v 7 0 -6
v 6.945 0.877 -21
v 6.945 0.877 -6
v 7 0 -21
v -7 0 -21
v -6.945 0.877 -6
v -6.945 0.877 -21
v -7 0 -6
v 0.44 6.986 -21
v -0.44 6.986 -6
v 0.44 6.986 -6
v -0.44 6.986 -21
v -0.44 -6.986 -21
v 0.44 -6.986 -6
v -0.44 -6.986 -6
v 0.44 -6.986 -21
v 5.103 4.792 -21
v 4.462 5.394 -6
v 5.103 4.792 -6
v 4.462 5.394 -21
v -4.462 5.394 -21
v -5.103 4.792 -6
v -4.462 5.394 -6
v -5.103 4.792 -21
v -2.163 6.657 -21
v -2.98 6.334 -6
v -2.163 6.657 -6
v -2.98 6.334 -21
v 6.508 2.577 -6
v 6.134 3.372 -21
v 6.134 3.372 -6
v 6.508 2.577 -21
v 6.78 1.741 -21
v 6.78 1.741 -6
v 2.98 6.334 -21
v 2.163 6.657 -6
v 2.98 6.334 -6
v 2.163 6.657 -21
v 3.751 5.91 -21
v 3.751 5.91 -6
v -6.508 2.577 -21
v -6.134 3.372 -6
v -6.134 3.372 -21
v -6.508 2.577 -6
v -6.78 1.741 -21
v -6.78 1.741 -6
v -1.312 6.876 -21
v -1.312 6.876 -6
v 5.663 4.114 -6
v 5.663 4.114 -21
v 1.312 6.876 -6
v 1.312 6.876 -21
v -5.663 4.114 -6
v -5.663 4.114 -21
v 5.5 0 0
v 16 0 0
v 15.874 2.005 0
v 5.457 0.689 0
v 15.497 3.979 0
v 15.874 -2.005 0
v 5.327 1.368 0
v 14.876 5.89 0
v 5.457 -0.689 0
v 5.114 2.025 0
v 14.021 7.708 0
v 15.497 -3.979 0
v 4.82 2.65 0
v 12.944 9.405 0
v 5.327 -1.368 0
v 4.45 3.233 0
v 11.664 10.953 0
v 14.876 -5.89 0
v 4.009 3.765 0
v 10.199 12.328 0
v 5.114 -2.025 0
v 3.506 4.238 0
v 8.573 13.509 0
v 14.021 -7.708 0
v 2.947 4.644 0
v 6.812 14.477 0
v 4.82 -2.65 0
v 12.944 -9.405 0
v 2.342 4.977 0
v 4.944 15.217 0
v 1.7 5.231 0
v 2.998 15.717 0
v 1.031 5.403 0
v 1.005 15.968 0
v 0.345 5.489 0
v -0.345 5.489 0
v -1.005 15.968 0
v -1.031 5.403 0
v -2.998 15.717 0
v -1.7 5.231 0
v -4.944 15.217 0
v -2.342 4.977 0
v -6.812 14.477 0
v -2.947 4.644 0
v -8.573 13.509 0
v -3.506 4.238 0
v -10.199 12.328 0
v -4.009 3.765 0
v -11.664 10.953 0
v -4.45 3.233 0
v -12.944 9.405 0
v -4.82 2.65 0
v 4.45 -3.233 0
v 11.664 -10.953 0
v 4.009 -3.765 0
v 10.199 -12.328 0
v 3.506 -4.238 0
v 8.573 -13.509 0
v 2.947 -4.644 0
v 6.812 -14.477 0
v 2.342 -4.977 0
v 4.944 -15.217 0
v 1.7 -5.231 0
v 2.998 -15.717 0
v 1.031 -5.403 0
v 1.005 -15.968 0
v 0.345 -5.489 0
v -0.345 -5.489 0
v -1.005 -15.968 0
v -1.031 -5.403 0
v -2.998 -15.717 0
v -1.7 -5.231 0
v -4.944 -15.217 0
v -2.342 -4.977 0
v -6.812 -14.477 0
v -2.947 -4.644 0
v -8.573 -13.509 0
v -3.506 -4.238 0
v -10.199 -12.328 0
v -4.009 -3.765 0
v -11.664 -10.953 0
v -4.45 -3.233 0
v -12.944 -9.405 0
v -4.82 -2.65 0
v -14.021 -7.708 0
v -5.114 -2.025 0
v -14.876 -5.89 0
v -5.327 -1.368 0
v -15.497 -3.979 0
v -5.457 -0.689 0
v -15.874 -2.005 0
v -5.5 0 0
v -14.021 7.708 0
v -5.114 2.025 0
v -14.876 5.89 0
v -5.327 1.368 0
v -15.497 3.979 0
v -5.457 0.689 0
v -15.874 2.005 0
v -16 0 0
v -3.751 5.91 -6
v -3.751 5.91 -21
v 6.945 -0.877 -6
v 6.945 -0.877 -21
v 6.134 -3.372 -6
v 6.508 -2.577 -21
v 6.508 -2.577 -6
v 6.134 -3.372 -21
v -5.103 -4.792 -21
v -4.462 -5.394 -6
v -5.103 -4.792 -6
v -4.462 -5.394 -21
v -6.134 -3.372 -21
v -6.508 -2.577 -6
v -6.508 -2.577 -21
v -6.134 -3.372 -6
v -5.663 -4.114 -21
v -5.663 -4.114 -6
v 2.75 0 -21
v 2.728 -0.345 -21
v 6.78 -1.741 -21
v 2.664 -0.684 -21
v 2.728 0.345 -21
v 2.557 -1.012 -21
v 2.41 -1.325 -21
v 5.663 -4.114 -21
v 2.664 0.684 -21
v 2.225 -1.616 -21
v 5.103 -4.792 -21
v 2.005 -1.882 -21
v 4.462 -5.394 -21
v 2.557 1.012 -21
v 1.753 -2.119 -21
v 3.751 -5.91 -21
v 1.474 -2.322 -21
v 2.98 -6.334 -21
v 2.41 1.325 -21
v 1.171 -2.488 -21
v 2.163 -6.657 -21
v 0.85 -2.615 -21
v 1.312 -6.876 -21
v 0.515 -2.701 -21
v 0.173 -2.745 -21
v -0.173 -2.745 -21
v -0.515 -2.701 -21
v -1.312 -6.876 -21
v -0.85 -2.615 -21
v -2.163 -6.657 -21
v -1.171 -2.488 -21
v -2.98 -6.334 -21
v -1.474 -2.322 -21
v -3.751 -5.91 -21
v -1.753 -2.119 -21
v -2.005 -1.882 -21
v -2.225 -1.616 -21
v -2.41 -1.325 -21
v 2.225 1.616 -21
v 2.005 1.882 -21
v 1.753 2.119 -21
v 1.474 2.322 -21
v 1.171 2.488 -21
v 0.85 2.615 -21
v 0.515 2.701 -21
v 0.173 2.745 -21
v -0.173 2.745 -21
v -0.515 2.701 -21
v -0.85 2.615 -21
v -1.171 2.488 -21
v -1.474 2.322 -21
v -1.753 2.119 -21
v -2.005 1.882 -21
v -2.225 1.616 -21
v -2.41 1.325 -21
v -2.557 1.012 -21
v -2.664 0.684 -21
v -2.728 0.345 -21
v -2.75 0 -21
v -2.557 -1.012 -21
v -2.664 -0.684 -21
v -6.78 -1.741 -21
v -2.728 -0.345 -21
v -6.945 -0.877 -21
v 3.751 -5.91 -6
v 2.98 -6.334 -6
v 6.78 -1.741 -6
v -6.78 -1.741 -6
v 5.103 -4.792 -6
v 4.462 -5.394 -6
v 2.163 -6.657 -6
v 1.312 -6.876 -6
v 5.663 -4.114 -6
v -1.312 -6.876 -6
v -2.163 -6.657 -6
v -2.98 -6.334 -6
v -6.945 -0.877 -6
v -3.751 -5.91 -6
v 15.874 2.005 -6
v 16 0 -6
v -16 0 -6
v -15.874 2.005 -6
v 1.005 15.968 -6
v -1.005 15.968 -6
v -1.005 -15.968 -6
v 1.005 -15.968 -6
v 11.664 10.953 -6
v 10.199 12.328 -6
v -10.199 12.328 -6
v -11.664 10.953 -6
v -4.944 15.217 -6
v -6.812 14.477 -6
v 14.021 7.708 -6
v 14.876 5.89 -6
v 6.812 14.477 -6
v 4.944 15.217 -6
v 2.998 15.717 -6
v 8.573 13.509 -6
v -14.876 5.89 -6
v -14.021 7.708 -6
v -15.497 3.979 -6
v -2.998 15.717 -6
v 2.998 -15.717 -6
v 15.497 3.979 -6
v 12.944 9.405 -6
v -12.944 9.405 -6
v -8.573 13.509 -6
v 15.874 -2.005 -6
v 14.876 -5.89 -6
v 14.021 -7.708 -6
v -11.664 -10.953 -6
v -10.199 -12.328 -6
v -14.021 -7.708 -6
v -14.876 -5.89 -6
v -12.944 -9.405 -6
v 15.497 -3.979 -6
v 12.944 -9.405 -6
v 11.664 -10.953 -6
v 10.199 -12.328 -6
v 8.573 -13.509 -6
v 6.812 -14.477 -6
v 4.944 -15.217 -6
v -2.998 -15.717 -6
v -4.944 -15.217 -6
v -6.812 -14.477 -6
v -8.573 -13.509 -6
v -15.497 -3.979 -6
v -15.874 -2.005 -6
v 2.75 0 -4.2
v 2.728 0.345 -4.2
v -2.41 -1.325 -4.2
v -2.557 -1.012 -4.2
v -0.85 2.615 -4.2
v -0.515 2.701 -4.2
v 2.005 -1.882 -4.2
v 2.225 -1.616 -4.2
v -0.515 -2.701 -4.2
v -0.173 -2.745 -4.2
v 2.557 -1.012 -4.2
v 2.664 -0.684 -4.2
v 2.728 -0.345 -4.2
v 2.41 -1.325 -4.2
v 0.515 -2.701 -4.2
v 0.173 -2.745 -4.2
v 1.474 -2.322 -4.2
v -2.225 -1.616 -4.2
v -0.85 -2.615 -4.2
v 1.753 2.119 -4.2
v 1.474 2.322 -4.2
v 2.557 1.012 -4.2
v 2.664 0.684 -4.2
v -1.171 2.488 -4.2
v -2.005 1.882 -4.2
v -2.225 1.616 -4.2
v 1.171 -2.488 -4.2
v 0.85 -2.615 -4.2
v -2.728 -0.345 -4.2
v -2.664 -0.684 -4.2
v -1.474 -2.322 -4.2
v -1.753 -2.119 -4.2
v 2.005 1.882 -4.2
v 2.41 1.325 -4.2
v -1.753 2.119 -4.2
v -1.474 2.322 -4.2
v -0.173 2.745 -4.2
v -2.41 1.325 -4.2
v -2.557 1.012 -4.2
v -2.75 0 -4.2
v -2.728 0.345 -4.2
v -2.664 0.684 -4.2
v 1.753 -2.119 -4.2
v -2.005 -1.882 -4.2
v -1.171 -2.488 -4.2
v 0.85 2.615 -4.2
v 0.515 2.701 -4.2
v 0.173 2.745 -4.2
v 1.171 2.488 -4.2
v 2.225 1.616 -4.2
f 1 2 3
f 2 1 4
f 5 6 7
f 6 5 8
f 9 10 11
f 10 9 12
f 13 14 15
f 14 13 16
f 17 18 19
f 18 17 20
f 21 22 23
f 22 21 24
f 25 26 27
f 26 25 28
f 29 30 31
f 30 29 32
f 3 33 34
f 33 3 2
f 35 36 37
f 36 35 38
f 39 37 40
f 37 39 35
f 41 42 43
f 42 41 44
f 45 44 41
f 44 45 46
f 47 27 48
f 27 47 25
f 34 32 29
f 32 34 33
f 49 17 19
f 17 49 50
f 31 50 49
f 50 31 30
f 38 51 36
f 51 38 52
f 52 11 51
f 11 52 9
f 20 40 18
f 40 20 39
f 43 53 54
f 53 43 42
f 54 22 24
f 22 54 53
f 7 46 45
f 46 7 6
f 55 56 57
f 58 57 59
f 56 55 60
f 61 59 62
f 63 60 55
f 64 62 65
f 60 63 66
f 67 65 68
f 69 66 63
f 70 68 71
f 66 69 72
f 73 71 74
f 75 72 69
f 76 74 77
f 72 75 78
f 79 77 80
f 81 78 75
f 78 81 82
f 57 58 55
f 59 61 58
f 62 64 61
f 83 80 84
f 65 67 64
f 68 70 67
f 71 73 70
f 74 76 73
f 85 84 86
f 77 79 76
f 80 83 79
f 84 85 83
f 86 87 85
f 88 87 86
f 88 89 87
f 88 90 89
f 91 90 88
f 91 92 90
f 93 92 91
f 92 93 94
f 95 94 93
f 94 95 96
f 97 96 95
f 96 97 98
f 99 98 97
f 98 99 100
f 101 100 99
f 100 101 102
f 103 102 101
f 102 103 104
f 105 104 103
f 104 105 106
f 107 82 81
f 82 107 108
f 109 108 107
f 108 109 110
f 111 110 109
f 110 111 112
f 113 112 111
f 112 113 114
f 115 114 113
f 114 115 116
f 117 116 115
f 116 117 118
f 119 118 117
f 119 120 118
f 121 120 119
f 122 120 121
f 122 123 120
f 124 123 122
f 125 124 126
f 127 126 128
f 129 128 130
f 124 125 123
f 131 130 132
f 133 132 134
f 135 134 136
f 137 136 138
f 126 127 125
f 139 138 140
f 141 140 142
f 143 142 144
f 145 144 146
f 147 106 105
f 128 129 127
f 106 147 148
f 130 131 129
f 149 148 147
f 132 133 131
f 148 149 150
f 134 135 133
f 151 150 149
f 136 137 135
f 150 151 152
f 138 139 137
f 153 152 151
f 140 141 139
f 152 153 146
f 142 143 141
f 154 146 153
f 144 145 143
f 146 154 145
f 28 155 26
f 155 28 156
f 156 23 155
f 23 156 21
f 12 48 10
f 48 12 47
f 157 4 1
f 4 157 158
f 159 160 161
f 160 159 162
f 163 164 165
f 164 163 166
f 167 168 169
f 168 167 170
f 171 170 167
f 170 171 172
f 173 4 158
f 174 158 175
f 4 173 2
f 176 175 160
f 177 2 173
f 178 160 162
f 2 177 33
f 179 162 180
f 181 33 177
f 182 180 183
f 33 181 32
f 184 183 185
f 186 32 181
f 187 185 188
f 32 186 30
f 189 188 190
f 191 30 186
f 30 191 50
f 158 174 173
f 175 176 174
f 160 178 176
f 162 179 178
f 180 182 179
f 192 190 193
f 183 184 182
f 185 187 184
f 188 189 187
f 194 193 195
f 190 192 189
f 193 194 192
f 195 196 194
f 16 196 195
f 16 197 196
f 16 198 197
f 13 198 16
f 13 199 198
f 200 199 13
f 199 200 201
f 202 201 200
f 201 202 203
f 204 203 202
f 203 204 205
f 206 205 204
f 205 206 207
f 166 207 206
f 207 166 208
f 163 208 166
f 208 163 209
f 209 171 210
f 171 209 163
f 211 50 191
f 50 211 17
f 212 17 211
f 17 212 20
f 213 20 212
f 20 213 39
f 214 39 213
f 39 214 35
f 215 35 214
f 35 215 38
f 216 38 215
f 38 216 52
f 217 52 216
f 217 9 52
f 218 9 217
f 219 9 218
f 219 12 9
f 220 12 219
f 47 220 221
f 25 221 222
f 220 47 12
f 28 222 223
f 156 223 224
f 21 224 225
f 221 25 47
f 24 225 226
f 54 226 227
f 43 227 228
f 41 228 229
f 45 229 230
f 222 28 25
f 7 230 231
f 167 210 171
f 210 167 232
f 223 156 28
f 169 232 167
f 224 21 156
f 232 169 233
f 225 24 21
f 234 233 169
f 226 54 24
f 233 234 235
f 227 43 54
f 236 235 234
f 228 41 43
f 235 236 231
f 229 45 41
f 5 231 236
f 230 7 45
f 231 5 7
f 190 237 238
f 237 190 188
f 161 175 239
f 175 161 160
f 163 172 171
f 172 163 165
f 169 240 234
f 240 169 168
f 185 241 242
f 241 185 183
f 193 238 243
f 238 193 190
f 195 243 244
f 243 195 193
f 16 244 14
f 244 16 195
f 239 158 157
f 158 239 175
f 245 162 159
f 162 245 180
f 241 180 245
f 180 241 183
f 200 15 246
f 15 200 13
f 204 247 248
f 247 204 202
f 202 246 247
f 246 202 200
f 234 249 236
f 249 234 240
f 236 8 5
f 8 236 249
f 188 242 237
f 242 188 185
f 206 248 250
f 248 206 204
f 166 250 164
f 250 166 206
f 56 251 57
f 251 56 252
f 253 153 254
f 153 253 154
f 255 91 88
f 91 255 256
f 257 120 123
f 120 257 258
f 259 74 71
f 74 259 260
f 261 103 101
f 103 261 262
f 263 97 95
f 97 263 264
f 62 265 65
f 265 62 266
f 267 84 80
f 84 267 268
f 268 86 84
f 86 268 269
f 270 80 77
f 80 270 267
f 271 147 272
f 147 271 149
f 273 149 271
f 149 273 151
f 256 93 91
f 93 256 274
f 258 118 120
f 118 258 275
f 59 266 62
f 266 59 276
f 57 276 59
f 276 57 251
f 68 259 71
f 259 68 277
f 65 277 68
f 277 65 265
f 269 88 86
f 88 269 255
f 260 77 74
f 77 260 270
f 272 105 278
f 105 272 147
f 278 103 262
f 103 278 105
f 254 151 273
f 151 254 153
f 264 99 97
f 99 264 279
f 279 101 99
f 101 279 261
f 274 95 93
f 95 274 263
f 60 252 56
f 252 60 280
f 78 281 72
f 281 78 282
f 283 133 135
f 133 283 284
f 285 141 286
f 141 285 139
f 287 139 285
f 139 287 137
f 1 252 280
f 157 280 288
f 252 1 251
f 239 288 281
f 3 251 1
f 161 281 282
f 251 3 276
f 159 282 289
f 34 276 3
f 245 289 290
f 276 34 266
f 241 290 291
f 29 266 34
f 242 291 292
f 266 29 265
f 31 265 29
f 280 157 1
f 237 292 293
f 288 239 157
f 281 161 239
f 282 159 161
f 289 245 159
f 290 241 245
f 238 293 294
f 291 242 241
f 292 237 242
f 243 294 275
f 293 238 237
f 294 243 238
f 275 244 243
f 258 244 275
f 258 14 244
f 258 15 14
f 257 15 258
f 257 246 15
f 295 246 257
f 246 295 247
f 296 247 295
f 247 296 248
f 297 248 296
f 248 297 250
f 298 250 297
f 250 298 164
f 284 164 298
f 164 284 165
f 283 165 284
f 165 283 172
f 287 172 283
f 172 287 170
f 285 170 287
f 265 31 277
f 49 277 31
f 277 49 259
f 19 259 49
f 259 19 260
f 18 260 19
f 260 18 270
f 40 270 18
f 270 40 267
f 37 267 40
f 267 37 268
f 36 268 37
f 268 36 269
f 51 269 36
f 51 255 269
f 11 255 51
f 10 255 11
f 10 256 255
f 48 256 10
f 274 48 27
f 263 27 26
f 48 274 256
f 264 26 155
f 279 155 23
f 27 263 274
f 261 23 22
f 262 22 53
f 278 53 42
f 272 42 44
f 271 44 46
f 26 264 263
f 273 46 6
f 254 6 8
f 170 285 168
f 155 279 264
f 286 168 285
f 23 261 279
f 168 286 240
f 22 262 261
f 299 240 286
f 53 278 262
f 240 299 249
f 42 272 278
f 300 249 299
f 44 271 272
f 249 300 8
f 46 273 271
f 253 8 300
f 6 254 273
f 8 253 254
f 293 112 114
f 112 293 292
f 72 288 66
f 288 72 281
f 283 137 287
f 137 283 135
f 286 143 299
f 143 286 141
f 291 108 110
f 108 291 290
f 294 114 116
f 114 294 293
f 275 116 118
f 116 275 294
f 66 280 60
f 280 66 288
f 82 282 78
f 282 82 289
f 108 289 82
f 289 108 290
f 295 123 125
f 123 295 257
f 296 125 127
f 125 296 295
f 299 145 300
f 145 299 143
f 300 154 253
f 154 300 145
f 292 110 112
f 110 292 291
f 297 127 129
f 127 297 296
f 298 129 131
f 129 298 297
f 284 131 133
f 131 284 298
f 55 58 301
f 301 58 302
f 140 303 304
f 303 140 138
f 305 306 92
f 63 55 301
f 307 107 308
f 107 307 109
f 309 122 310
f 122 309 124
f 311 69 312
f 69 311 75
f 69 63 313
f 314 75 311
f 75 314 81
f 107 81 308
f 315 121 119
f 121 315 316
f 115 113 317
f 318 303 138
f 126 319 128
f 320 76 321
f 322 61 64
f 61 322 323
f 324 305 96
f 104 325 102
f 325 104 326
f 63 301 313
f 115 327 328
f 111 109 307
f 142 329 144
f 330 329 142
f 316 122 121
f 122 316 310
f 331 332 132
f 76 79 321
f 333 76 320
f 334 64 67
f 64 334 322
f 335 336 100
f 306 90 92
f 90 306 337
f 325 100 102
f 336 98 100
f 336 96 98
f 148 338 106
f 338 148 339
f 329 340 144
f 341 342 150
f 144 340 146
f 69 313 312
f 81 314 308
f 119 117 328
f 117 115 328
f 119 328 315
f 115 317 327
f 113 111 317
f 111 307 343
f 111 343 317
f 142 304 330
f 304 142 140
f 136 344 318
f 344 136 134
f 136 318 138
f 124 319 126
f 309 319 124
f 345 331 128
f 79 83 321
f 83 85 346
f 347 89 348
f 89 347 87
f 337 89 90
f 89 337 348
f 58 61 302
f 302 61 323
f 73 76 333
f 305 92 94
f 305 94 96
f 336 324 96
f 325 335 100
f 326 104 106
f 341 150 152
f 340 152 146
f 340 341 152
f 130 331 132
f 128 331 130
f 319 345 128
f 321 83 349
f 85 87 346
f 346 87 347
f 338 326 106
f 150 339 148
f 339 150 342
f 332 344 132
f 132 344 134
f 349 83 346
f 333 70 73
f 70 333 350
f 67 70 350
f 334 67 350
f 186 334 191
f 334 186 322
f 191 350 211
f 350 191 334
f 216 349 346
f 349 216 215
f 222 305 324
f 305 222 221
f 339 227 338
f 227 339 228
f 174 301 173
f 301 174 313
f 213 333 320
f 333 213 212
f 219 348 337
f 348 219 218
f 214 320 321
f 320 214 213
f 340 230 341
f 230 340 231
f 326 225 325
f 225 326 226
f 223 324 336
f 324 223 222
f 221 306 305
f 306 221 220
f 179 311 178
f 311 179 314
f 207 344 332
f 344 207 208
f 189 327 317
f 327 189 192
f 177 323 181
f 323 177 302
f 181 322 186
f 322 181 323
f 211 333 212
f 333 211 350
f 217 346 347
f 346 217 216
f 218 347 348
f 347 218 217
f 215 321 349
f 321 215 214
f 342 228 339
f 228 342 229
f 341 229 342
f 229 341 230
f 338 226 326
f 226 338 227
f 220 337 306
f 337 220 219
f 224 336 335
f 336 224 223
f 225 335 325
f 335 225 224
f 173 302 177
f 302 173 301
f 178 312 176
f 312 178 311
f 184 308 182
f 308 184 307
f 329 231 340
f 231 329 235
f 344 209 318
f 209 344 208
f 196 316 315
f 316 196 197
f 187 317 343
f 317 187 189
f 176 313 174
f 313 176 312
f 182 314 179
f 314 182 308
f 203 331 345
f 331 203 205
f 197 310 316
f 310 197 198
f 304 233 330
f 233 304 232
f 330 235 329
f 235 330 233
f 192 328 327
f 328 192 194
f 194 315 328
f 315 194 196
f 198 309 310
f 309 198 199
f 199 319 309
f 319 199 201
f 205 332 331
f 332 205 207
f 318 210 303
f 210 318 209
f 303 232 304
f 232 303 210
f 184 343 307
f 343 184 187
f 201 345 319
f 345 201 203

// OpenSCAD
$fn = 50;


difference() {
	union() {
		translate(v = [0, 0, -21.0000000000]) {
			cylinder(h = 21, r = 7.0000000000);
		}
		translate(v = [0, 0, -6.0000000000]) {
			cylinder(h = 6, r = 16.0000000000);
		}
	}
	union() {
		translate(v = [0, 0, 0]) {
			rotate(a = [0, 0, 0]) {
				difference() {
					union() {
						#translate(v = [0, 0, -21.0000000000]) {
							cylinder(h = 21, r = 2.2500000000);
						}
						#translate(v = [0, 0, -4.2000000000]) {
							cylinder(h = 4.2000000000, r = 7.0000000000, r1 = 2.7500000000, r2 = 5.5000000000);
						}
						#translate(v = [0, 0, -21.0000000000]) {
							cylinder(h = 21, r = 2.7500000000);
						}
						#translate(v = [0, 0, -21.0000000000]) {
							cylinder(h = 21, r = 2.2500000000);
						}
					}
					union();
				}
			}
		}
	}
}
